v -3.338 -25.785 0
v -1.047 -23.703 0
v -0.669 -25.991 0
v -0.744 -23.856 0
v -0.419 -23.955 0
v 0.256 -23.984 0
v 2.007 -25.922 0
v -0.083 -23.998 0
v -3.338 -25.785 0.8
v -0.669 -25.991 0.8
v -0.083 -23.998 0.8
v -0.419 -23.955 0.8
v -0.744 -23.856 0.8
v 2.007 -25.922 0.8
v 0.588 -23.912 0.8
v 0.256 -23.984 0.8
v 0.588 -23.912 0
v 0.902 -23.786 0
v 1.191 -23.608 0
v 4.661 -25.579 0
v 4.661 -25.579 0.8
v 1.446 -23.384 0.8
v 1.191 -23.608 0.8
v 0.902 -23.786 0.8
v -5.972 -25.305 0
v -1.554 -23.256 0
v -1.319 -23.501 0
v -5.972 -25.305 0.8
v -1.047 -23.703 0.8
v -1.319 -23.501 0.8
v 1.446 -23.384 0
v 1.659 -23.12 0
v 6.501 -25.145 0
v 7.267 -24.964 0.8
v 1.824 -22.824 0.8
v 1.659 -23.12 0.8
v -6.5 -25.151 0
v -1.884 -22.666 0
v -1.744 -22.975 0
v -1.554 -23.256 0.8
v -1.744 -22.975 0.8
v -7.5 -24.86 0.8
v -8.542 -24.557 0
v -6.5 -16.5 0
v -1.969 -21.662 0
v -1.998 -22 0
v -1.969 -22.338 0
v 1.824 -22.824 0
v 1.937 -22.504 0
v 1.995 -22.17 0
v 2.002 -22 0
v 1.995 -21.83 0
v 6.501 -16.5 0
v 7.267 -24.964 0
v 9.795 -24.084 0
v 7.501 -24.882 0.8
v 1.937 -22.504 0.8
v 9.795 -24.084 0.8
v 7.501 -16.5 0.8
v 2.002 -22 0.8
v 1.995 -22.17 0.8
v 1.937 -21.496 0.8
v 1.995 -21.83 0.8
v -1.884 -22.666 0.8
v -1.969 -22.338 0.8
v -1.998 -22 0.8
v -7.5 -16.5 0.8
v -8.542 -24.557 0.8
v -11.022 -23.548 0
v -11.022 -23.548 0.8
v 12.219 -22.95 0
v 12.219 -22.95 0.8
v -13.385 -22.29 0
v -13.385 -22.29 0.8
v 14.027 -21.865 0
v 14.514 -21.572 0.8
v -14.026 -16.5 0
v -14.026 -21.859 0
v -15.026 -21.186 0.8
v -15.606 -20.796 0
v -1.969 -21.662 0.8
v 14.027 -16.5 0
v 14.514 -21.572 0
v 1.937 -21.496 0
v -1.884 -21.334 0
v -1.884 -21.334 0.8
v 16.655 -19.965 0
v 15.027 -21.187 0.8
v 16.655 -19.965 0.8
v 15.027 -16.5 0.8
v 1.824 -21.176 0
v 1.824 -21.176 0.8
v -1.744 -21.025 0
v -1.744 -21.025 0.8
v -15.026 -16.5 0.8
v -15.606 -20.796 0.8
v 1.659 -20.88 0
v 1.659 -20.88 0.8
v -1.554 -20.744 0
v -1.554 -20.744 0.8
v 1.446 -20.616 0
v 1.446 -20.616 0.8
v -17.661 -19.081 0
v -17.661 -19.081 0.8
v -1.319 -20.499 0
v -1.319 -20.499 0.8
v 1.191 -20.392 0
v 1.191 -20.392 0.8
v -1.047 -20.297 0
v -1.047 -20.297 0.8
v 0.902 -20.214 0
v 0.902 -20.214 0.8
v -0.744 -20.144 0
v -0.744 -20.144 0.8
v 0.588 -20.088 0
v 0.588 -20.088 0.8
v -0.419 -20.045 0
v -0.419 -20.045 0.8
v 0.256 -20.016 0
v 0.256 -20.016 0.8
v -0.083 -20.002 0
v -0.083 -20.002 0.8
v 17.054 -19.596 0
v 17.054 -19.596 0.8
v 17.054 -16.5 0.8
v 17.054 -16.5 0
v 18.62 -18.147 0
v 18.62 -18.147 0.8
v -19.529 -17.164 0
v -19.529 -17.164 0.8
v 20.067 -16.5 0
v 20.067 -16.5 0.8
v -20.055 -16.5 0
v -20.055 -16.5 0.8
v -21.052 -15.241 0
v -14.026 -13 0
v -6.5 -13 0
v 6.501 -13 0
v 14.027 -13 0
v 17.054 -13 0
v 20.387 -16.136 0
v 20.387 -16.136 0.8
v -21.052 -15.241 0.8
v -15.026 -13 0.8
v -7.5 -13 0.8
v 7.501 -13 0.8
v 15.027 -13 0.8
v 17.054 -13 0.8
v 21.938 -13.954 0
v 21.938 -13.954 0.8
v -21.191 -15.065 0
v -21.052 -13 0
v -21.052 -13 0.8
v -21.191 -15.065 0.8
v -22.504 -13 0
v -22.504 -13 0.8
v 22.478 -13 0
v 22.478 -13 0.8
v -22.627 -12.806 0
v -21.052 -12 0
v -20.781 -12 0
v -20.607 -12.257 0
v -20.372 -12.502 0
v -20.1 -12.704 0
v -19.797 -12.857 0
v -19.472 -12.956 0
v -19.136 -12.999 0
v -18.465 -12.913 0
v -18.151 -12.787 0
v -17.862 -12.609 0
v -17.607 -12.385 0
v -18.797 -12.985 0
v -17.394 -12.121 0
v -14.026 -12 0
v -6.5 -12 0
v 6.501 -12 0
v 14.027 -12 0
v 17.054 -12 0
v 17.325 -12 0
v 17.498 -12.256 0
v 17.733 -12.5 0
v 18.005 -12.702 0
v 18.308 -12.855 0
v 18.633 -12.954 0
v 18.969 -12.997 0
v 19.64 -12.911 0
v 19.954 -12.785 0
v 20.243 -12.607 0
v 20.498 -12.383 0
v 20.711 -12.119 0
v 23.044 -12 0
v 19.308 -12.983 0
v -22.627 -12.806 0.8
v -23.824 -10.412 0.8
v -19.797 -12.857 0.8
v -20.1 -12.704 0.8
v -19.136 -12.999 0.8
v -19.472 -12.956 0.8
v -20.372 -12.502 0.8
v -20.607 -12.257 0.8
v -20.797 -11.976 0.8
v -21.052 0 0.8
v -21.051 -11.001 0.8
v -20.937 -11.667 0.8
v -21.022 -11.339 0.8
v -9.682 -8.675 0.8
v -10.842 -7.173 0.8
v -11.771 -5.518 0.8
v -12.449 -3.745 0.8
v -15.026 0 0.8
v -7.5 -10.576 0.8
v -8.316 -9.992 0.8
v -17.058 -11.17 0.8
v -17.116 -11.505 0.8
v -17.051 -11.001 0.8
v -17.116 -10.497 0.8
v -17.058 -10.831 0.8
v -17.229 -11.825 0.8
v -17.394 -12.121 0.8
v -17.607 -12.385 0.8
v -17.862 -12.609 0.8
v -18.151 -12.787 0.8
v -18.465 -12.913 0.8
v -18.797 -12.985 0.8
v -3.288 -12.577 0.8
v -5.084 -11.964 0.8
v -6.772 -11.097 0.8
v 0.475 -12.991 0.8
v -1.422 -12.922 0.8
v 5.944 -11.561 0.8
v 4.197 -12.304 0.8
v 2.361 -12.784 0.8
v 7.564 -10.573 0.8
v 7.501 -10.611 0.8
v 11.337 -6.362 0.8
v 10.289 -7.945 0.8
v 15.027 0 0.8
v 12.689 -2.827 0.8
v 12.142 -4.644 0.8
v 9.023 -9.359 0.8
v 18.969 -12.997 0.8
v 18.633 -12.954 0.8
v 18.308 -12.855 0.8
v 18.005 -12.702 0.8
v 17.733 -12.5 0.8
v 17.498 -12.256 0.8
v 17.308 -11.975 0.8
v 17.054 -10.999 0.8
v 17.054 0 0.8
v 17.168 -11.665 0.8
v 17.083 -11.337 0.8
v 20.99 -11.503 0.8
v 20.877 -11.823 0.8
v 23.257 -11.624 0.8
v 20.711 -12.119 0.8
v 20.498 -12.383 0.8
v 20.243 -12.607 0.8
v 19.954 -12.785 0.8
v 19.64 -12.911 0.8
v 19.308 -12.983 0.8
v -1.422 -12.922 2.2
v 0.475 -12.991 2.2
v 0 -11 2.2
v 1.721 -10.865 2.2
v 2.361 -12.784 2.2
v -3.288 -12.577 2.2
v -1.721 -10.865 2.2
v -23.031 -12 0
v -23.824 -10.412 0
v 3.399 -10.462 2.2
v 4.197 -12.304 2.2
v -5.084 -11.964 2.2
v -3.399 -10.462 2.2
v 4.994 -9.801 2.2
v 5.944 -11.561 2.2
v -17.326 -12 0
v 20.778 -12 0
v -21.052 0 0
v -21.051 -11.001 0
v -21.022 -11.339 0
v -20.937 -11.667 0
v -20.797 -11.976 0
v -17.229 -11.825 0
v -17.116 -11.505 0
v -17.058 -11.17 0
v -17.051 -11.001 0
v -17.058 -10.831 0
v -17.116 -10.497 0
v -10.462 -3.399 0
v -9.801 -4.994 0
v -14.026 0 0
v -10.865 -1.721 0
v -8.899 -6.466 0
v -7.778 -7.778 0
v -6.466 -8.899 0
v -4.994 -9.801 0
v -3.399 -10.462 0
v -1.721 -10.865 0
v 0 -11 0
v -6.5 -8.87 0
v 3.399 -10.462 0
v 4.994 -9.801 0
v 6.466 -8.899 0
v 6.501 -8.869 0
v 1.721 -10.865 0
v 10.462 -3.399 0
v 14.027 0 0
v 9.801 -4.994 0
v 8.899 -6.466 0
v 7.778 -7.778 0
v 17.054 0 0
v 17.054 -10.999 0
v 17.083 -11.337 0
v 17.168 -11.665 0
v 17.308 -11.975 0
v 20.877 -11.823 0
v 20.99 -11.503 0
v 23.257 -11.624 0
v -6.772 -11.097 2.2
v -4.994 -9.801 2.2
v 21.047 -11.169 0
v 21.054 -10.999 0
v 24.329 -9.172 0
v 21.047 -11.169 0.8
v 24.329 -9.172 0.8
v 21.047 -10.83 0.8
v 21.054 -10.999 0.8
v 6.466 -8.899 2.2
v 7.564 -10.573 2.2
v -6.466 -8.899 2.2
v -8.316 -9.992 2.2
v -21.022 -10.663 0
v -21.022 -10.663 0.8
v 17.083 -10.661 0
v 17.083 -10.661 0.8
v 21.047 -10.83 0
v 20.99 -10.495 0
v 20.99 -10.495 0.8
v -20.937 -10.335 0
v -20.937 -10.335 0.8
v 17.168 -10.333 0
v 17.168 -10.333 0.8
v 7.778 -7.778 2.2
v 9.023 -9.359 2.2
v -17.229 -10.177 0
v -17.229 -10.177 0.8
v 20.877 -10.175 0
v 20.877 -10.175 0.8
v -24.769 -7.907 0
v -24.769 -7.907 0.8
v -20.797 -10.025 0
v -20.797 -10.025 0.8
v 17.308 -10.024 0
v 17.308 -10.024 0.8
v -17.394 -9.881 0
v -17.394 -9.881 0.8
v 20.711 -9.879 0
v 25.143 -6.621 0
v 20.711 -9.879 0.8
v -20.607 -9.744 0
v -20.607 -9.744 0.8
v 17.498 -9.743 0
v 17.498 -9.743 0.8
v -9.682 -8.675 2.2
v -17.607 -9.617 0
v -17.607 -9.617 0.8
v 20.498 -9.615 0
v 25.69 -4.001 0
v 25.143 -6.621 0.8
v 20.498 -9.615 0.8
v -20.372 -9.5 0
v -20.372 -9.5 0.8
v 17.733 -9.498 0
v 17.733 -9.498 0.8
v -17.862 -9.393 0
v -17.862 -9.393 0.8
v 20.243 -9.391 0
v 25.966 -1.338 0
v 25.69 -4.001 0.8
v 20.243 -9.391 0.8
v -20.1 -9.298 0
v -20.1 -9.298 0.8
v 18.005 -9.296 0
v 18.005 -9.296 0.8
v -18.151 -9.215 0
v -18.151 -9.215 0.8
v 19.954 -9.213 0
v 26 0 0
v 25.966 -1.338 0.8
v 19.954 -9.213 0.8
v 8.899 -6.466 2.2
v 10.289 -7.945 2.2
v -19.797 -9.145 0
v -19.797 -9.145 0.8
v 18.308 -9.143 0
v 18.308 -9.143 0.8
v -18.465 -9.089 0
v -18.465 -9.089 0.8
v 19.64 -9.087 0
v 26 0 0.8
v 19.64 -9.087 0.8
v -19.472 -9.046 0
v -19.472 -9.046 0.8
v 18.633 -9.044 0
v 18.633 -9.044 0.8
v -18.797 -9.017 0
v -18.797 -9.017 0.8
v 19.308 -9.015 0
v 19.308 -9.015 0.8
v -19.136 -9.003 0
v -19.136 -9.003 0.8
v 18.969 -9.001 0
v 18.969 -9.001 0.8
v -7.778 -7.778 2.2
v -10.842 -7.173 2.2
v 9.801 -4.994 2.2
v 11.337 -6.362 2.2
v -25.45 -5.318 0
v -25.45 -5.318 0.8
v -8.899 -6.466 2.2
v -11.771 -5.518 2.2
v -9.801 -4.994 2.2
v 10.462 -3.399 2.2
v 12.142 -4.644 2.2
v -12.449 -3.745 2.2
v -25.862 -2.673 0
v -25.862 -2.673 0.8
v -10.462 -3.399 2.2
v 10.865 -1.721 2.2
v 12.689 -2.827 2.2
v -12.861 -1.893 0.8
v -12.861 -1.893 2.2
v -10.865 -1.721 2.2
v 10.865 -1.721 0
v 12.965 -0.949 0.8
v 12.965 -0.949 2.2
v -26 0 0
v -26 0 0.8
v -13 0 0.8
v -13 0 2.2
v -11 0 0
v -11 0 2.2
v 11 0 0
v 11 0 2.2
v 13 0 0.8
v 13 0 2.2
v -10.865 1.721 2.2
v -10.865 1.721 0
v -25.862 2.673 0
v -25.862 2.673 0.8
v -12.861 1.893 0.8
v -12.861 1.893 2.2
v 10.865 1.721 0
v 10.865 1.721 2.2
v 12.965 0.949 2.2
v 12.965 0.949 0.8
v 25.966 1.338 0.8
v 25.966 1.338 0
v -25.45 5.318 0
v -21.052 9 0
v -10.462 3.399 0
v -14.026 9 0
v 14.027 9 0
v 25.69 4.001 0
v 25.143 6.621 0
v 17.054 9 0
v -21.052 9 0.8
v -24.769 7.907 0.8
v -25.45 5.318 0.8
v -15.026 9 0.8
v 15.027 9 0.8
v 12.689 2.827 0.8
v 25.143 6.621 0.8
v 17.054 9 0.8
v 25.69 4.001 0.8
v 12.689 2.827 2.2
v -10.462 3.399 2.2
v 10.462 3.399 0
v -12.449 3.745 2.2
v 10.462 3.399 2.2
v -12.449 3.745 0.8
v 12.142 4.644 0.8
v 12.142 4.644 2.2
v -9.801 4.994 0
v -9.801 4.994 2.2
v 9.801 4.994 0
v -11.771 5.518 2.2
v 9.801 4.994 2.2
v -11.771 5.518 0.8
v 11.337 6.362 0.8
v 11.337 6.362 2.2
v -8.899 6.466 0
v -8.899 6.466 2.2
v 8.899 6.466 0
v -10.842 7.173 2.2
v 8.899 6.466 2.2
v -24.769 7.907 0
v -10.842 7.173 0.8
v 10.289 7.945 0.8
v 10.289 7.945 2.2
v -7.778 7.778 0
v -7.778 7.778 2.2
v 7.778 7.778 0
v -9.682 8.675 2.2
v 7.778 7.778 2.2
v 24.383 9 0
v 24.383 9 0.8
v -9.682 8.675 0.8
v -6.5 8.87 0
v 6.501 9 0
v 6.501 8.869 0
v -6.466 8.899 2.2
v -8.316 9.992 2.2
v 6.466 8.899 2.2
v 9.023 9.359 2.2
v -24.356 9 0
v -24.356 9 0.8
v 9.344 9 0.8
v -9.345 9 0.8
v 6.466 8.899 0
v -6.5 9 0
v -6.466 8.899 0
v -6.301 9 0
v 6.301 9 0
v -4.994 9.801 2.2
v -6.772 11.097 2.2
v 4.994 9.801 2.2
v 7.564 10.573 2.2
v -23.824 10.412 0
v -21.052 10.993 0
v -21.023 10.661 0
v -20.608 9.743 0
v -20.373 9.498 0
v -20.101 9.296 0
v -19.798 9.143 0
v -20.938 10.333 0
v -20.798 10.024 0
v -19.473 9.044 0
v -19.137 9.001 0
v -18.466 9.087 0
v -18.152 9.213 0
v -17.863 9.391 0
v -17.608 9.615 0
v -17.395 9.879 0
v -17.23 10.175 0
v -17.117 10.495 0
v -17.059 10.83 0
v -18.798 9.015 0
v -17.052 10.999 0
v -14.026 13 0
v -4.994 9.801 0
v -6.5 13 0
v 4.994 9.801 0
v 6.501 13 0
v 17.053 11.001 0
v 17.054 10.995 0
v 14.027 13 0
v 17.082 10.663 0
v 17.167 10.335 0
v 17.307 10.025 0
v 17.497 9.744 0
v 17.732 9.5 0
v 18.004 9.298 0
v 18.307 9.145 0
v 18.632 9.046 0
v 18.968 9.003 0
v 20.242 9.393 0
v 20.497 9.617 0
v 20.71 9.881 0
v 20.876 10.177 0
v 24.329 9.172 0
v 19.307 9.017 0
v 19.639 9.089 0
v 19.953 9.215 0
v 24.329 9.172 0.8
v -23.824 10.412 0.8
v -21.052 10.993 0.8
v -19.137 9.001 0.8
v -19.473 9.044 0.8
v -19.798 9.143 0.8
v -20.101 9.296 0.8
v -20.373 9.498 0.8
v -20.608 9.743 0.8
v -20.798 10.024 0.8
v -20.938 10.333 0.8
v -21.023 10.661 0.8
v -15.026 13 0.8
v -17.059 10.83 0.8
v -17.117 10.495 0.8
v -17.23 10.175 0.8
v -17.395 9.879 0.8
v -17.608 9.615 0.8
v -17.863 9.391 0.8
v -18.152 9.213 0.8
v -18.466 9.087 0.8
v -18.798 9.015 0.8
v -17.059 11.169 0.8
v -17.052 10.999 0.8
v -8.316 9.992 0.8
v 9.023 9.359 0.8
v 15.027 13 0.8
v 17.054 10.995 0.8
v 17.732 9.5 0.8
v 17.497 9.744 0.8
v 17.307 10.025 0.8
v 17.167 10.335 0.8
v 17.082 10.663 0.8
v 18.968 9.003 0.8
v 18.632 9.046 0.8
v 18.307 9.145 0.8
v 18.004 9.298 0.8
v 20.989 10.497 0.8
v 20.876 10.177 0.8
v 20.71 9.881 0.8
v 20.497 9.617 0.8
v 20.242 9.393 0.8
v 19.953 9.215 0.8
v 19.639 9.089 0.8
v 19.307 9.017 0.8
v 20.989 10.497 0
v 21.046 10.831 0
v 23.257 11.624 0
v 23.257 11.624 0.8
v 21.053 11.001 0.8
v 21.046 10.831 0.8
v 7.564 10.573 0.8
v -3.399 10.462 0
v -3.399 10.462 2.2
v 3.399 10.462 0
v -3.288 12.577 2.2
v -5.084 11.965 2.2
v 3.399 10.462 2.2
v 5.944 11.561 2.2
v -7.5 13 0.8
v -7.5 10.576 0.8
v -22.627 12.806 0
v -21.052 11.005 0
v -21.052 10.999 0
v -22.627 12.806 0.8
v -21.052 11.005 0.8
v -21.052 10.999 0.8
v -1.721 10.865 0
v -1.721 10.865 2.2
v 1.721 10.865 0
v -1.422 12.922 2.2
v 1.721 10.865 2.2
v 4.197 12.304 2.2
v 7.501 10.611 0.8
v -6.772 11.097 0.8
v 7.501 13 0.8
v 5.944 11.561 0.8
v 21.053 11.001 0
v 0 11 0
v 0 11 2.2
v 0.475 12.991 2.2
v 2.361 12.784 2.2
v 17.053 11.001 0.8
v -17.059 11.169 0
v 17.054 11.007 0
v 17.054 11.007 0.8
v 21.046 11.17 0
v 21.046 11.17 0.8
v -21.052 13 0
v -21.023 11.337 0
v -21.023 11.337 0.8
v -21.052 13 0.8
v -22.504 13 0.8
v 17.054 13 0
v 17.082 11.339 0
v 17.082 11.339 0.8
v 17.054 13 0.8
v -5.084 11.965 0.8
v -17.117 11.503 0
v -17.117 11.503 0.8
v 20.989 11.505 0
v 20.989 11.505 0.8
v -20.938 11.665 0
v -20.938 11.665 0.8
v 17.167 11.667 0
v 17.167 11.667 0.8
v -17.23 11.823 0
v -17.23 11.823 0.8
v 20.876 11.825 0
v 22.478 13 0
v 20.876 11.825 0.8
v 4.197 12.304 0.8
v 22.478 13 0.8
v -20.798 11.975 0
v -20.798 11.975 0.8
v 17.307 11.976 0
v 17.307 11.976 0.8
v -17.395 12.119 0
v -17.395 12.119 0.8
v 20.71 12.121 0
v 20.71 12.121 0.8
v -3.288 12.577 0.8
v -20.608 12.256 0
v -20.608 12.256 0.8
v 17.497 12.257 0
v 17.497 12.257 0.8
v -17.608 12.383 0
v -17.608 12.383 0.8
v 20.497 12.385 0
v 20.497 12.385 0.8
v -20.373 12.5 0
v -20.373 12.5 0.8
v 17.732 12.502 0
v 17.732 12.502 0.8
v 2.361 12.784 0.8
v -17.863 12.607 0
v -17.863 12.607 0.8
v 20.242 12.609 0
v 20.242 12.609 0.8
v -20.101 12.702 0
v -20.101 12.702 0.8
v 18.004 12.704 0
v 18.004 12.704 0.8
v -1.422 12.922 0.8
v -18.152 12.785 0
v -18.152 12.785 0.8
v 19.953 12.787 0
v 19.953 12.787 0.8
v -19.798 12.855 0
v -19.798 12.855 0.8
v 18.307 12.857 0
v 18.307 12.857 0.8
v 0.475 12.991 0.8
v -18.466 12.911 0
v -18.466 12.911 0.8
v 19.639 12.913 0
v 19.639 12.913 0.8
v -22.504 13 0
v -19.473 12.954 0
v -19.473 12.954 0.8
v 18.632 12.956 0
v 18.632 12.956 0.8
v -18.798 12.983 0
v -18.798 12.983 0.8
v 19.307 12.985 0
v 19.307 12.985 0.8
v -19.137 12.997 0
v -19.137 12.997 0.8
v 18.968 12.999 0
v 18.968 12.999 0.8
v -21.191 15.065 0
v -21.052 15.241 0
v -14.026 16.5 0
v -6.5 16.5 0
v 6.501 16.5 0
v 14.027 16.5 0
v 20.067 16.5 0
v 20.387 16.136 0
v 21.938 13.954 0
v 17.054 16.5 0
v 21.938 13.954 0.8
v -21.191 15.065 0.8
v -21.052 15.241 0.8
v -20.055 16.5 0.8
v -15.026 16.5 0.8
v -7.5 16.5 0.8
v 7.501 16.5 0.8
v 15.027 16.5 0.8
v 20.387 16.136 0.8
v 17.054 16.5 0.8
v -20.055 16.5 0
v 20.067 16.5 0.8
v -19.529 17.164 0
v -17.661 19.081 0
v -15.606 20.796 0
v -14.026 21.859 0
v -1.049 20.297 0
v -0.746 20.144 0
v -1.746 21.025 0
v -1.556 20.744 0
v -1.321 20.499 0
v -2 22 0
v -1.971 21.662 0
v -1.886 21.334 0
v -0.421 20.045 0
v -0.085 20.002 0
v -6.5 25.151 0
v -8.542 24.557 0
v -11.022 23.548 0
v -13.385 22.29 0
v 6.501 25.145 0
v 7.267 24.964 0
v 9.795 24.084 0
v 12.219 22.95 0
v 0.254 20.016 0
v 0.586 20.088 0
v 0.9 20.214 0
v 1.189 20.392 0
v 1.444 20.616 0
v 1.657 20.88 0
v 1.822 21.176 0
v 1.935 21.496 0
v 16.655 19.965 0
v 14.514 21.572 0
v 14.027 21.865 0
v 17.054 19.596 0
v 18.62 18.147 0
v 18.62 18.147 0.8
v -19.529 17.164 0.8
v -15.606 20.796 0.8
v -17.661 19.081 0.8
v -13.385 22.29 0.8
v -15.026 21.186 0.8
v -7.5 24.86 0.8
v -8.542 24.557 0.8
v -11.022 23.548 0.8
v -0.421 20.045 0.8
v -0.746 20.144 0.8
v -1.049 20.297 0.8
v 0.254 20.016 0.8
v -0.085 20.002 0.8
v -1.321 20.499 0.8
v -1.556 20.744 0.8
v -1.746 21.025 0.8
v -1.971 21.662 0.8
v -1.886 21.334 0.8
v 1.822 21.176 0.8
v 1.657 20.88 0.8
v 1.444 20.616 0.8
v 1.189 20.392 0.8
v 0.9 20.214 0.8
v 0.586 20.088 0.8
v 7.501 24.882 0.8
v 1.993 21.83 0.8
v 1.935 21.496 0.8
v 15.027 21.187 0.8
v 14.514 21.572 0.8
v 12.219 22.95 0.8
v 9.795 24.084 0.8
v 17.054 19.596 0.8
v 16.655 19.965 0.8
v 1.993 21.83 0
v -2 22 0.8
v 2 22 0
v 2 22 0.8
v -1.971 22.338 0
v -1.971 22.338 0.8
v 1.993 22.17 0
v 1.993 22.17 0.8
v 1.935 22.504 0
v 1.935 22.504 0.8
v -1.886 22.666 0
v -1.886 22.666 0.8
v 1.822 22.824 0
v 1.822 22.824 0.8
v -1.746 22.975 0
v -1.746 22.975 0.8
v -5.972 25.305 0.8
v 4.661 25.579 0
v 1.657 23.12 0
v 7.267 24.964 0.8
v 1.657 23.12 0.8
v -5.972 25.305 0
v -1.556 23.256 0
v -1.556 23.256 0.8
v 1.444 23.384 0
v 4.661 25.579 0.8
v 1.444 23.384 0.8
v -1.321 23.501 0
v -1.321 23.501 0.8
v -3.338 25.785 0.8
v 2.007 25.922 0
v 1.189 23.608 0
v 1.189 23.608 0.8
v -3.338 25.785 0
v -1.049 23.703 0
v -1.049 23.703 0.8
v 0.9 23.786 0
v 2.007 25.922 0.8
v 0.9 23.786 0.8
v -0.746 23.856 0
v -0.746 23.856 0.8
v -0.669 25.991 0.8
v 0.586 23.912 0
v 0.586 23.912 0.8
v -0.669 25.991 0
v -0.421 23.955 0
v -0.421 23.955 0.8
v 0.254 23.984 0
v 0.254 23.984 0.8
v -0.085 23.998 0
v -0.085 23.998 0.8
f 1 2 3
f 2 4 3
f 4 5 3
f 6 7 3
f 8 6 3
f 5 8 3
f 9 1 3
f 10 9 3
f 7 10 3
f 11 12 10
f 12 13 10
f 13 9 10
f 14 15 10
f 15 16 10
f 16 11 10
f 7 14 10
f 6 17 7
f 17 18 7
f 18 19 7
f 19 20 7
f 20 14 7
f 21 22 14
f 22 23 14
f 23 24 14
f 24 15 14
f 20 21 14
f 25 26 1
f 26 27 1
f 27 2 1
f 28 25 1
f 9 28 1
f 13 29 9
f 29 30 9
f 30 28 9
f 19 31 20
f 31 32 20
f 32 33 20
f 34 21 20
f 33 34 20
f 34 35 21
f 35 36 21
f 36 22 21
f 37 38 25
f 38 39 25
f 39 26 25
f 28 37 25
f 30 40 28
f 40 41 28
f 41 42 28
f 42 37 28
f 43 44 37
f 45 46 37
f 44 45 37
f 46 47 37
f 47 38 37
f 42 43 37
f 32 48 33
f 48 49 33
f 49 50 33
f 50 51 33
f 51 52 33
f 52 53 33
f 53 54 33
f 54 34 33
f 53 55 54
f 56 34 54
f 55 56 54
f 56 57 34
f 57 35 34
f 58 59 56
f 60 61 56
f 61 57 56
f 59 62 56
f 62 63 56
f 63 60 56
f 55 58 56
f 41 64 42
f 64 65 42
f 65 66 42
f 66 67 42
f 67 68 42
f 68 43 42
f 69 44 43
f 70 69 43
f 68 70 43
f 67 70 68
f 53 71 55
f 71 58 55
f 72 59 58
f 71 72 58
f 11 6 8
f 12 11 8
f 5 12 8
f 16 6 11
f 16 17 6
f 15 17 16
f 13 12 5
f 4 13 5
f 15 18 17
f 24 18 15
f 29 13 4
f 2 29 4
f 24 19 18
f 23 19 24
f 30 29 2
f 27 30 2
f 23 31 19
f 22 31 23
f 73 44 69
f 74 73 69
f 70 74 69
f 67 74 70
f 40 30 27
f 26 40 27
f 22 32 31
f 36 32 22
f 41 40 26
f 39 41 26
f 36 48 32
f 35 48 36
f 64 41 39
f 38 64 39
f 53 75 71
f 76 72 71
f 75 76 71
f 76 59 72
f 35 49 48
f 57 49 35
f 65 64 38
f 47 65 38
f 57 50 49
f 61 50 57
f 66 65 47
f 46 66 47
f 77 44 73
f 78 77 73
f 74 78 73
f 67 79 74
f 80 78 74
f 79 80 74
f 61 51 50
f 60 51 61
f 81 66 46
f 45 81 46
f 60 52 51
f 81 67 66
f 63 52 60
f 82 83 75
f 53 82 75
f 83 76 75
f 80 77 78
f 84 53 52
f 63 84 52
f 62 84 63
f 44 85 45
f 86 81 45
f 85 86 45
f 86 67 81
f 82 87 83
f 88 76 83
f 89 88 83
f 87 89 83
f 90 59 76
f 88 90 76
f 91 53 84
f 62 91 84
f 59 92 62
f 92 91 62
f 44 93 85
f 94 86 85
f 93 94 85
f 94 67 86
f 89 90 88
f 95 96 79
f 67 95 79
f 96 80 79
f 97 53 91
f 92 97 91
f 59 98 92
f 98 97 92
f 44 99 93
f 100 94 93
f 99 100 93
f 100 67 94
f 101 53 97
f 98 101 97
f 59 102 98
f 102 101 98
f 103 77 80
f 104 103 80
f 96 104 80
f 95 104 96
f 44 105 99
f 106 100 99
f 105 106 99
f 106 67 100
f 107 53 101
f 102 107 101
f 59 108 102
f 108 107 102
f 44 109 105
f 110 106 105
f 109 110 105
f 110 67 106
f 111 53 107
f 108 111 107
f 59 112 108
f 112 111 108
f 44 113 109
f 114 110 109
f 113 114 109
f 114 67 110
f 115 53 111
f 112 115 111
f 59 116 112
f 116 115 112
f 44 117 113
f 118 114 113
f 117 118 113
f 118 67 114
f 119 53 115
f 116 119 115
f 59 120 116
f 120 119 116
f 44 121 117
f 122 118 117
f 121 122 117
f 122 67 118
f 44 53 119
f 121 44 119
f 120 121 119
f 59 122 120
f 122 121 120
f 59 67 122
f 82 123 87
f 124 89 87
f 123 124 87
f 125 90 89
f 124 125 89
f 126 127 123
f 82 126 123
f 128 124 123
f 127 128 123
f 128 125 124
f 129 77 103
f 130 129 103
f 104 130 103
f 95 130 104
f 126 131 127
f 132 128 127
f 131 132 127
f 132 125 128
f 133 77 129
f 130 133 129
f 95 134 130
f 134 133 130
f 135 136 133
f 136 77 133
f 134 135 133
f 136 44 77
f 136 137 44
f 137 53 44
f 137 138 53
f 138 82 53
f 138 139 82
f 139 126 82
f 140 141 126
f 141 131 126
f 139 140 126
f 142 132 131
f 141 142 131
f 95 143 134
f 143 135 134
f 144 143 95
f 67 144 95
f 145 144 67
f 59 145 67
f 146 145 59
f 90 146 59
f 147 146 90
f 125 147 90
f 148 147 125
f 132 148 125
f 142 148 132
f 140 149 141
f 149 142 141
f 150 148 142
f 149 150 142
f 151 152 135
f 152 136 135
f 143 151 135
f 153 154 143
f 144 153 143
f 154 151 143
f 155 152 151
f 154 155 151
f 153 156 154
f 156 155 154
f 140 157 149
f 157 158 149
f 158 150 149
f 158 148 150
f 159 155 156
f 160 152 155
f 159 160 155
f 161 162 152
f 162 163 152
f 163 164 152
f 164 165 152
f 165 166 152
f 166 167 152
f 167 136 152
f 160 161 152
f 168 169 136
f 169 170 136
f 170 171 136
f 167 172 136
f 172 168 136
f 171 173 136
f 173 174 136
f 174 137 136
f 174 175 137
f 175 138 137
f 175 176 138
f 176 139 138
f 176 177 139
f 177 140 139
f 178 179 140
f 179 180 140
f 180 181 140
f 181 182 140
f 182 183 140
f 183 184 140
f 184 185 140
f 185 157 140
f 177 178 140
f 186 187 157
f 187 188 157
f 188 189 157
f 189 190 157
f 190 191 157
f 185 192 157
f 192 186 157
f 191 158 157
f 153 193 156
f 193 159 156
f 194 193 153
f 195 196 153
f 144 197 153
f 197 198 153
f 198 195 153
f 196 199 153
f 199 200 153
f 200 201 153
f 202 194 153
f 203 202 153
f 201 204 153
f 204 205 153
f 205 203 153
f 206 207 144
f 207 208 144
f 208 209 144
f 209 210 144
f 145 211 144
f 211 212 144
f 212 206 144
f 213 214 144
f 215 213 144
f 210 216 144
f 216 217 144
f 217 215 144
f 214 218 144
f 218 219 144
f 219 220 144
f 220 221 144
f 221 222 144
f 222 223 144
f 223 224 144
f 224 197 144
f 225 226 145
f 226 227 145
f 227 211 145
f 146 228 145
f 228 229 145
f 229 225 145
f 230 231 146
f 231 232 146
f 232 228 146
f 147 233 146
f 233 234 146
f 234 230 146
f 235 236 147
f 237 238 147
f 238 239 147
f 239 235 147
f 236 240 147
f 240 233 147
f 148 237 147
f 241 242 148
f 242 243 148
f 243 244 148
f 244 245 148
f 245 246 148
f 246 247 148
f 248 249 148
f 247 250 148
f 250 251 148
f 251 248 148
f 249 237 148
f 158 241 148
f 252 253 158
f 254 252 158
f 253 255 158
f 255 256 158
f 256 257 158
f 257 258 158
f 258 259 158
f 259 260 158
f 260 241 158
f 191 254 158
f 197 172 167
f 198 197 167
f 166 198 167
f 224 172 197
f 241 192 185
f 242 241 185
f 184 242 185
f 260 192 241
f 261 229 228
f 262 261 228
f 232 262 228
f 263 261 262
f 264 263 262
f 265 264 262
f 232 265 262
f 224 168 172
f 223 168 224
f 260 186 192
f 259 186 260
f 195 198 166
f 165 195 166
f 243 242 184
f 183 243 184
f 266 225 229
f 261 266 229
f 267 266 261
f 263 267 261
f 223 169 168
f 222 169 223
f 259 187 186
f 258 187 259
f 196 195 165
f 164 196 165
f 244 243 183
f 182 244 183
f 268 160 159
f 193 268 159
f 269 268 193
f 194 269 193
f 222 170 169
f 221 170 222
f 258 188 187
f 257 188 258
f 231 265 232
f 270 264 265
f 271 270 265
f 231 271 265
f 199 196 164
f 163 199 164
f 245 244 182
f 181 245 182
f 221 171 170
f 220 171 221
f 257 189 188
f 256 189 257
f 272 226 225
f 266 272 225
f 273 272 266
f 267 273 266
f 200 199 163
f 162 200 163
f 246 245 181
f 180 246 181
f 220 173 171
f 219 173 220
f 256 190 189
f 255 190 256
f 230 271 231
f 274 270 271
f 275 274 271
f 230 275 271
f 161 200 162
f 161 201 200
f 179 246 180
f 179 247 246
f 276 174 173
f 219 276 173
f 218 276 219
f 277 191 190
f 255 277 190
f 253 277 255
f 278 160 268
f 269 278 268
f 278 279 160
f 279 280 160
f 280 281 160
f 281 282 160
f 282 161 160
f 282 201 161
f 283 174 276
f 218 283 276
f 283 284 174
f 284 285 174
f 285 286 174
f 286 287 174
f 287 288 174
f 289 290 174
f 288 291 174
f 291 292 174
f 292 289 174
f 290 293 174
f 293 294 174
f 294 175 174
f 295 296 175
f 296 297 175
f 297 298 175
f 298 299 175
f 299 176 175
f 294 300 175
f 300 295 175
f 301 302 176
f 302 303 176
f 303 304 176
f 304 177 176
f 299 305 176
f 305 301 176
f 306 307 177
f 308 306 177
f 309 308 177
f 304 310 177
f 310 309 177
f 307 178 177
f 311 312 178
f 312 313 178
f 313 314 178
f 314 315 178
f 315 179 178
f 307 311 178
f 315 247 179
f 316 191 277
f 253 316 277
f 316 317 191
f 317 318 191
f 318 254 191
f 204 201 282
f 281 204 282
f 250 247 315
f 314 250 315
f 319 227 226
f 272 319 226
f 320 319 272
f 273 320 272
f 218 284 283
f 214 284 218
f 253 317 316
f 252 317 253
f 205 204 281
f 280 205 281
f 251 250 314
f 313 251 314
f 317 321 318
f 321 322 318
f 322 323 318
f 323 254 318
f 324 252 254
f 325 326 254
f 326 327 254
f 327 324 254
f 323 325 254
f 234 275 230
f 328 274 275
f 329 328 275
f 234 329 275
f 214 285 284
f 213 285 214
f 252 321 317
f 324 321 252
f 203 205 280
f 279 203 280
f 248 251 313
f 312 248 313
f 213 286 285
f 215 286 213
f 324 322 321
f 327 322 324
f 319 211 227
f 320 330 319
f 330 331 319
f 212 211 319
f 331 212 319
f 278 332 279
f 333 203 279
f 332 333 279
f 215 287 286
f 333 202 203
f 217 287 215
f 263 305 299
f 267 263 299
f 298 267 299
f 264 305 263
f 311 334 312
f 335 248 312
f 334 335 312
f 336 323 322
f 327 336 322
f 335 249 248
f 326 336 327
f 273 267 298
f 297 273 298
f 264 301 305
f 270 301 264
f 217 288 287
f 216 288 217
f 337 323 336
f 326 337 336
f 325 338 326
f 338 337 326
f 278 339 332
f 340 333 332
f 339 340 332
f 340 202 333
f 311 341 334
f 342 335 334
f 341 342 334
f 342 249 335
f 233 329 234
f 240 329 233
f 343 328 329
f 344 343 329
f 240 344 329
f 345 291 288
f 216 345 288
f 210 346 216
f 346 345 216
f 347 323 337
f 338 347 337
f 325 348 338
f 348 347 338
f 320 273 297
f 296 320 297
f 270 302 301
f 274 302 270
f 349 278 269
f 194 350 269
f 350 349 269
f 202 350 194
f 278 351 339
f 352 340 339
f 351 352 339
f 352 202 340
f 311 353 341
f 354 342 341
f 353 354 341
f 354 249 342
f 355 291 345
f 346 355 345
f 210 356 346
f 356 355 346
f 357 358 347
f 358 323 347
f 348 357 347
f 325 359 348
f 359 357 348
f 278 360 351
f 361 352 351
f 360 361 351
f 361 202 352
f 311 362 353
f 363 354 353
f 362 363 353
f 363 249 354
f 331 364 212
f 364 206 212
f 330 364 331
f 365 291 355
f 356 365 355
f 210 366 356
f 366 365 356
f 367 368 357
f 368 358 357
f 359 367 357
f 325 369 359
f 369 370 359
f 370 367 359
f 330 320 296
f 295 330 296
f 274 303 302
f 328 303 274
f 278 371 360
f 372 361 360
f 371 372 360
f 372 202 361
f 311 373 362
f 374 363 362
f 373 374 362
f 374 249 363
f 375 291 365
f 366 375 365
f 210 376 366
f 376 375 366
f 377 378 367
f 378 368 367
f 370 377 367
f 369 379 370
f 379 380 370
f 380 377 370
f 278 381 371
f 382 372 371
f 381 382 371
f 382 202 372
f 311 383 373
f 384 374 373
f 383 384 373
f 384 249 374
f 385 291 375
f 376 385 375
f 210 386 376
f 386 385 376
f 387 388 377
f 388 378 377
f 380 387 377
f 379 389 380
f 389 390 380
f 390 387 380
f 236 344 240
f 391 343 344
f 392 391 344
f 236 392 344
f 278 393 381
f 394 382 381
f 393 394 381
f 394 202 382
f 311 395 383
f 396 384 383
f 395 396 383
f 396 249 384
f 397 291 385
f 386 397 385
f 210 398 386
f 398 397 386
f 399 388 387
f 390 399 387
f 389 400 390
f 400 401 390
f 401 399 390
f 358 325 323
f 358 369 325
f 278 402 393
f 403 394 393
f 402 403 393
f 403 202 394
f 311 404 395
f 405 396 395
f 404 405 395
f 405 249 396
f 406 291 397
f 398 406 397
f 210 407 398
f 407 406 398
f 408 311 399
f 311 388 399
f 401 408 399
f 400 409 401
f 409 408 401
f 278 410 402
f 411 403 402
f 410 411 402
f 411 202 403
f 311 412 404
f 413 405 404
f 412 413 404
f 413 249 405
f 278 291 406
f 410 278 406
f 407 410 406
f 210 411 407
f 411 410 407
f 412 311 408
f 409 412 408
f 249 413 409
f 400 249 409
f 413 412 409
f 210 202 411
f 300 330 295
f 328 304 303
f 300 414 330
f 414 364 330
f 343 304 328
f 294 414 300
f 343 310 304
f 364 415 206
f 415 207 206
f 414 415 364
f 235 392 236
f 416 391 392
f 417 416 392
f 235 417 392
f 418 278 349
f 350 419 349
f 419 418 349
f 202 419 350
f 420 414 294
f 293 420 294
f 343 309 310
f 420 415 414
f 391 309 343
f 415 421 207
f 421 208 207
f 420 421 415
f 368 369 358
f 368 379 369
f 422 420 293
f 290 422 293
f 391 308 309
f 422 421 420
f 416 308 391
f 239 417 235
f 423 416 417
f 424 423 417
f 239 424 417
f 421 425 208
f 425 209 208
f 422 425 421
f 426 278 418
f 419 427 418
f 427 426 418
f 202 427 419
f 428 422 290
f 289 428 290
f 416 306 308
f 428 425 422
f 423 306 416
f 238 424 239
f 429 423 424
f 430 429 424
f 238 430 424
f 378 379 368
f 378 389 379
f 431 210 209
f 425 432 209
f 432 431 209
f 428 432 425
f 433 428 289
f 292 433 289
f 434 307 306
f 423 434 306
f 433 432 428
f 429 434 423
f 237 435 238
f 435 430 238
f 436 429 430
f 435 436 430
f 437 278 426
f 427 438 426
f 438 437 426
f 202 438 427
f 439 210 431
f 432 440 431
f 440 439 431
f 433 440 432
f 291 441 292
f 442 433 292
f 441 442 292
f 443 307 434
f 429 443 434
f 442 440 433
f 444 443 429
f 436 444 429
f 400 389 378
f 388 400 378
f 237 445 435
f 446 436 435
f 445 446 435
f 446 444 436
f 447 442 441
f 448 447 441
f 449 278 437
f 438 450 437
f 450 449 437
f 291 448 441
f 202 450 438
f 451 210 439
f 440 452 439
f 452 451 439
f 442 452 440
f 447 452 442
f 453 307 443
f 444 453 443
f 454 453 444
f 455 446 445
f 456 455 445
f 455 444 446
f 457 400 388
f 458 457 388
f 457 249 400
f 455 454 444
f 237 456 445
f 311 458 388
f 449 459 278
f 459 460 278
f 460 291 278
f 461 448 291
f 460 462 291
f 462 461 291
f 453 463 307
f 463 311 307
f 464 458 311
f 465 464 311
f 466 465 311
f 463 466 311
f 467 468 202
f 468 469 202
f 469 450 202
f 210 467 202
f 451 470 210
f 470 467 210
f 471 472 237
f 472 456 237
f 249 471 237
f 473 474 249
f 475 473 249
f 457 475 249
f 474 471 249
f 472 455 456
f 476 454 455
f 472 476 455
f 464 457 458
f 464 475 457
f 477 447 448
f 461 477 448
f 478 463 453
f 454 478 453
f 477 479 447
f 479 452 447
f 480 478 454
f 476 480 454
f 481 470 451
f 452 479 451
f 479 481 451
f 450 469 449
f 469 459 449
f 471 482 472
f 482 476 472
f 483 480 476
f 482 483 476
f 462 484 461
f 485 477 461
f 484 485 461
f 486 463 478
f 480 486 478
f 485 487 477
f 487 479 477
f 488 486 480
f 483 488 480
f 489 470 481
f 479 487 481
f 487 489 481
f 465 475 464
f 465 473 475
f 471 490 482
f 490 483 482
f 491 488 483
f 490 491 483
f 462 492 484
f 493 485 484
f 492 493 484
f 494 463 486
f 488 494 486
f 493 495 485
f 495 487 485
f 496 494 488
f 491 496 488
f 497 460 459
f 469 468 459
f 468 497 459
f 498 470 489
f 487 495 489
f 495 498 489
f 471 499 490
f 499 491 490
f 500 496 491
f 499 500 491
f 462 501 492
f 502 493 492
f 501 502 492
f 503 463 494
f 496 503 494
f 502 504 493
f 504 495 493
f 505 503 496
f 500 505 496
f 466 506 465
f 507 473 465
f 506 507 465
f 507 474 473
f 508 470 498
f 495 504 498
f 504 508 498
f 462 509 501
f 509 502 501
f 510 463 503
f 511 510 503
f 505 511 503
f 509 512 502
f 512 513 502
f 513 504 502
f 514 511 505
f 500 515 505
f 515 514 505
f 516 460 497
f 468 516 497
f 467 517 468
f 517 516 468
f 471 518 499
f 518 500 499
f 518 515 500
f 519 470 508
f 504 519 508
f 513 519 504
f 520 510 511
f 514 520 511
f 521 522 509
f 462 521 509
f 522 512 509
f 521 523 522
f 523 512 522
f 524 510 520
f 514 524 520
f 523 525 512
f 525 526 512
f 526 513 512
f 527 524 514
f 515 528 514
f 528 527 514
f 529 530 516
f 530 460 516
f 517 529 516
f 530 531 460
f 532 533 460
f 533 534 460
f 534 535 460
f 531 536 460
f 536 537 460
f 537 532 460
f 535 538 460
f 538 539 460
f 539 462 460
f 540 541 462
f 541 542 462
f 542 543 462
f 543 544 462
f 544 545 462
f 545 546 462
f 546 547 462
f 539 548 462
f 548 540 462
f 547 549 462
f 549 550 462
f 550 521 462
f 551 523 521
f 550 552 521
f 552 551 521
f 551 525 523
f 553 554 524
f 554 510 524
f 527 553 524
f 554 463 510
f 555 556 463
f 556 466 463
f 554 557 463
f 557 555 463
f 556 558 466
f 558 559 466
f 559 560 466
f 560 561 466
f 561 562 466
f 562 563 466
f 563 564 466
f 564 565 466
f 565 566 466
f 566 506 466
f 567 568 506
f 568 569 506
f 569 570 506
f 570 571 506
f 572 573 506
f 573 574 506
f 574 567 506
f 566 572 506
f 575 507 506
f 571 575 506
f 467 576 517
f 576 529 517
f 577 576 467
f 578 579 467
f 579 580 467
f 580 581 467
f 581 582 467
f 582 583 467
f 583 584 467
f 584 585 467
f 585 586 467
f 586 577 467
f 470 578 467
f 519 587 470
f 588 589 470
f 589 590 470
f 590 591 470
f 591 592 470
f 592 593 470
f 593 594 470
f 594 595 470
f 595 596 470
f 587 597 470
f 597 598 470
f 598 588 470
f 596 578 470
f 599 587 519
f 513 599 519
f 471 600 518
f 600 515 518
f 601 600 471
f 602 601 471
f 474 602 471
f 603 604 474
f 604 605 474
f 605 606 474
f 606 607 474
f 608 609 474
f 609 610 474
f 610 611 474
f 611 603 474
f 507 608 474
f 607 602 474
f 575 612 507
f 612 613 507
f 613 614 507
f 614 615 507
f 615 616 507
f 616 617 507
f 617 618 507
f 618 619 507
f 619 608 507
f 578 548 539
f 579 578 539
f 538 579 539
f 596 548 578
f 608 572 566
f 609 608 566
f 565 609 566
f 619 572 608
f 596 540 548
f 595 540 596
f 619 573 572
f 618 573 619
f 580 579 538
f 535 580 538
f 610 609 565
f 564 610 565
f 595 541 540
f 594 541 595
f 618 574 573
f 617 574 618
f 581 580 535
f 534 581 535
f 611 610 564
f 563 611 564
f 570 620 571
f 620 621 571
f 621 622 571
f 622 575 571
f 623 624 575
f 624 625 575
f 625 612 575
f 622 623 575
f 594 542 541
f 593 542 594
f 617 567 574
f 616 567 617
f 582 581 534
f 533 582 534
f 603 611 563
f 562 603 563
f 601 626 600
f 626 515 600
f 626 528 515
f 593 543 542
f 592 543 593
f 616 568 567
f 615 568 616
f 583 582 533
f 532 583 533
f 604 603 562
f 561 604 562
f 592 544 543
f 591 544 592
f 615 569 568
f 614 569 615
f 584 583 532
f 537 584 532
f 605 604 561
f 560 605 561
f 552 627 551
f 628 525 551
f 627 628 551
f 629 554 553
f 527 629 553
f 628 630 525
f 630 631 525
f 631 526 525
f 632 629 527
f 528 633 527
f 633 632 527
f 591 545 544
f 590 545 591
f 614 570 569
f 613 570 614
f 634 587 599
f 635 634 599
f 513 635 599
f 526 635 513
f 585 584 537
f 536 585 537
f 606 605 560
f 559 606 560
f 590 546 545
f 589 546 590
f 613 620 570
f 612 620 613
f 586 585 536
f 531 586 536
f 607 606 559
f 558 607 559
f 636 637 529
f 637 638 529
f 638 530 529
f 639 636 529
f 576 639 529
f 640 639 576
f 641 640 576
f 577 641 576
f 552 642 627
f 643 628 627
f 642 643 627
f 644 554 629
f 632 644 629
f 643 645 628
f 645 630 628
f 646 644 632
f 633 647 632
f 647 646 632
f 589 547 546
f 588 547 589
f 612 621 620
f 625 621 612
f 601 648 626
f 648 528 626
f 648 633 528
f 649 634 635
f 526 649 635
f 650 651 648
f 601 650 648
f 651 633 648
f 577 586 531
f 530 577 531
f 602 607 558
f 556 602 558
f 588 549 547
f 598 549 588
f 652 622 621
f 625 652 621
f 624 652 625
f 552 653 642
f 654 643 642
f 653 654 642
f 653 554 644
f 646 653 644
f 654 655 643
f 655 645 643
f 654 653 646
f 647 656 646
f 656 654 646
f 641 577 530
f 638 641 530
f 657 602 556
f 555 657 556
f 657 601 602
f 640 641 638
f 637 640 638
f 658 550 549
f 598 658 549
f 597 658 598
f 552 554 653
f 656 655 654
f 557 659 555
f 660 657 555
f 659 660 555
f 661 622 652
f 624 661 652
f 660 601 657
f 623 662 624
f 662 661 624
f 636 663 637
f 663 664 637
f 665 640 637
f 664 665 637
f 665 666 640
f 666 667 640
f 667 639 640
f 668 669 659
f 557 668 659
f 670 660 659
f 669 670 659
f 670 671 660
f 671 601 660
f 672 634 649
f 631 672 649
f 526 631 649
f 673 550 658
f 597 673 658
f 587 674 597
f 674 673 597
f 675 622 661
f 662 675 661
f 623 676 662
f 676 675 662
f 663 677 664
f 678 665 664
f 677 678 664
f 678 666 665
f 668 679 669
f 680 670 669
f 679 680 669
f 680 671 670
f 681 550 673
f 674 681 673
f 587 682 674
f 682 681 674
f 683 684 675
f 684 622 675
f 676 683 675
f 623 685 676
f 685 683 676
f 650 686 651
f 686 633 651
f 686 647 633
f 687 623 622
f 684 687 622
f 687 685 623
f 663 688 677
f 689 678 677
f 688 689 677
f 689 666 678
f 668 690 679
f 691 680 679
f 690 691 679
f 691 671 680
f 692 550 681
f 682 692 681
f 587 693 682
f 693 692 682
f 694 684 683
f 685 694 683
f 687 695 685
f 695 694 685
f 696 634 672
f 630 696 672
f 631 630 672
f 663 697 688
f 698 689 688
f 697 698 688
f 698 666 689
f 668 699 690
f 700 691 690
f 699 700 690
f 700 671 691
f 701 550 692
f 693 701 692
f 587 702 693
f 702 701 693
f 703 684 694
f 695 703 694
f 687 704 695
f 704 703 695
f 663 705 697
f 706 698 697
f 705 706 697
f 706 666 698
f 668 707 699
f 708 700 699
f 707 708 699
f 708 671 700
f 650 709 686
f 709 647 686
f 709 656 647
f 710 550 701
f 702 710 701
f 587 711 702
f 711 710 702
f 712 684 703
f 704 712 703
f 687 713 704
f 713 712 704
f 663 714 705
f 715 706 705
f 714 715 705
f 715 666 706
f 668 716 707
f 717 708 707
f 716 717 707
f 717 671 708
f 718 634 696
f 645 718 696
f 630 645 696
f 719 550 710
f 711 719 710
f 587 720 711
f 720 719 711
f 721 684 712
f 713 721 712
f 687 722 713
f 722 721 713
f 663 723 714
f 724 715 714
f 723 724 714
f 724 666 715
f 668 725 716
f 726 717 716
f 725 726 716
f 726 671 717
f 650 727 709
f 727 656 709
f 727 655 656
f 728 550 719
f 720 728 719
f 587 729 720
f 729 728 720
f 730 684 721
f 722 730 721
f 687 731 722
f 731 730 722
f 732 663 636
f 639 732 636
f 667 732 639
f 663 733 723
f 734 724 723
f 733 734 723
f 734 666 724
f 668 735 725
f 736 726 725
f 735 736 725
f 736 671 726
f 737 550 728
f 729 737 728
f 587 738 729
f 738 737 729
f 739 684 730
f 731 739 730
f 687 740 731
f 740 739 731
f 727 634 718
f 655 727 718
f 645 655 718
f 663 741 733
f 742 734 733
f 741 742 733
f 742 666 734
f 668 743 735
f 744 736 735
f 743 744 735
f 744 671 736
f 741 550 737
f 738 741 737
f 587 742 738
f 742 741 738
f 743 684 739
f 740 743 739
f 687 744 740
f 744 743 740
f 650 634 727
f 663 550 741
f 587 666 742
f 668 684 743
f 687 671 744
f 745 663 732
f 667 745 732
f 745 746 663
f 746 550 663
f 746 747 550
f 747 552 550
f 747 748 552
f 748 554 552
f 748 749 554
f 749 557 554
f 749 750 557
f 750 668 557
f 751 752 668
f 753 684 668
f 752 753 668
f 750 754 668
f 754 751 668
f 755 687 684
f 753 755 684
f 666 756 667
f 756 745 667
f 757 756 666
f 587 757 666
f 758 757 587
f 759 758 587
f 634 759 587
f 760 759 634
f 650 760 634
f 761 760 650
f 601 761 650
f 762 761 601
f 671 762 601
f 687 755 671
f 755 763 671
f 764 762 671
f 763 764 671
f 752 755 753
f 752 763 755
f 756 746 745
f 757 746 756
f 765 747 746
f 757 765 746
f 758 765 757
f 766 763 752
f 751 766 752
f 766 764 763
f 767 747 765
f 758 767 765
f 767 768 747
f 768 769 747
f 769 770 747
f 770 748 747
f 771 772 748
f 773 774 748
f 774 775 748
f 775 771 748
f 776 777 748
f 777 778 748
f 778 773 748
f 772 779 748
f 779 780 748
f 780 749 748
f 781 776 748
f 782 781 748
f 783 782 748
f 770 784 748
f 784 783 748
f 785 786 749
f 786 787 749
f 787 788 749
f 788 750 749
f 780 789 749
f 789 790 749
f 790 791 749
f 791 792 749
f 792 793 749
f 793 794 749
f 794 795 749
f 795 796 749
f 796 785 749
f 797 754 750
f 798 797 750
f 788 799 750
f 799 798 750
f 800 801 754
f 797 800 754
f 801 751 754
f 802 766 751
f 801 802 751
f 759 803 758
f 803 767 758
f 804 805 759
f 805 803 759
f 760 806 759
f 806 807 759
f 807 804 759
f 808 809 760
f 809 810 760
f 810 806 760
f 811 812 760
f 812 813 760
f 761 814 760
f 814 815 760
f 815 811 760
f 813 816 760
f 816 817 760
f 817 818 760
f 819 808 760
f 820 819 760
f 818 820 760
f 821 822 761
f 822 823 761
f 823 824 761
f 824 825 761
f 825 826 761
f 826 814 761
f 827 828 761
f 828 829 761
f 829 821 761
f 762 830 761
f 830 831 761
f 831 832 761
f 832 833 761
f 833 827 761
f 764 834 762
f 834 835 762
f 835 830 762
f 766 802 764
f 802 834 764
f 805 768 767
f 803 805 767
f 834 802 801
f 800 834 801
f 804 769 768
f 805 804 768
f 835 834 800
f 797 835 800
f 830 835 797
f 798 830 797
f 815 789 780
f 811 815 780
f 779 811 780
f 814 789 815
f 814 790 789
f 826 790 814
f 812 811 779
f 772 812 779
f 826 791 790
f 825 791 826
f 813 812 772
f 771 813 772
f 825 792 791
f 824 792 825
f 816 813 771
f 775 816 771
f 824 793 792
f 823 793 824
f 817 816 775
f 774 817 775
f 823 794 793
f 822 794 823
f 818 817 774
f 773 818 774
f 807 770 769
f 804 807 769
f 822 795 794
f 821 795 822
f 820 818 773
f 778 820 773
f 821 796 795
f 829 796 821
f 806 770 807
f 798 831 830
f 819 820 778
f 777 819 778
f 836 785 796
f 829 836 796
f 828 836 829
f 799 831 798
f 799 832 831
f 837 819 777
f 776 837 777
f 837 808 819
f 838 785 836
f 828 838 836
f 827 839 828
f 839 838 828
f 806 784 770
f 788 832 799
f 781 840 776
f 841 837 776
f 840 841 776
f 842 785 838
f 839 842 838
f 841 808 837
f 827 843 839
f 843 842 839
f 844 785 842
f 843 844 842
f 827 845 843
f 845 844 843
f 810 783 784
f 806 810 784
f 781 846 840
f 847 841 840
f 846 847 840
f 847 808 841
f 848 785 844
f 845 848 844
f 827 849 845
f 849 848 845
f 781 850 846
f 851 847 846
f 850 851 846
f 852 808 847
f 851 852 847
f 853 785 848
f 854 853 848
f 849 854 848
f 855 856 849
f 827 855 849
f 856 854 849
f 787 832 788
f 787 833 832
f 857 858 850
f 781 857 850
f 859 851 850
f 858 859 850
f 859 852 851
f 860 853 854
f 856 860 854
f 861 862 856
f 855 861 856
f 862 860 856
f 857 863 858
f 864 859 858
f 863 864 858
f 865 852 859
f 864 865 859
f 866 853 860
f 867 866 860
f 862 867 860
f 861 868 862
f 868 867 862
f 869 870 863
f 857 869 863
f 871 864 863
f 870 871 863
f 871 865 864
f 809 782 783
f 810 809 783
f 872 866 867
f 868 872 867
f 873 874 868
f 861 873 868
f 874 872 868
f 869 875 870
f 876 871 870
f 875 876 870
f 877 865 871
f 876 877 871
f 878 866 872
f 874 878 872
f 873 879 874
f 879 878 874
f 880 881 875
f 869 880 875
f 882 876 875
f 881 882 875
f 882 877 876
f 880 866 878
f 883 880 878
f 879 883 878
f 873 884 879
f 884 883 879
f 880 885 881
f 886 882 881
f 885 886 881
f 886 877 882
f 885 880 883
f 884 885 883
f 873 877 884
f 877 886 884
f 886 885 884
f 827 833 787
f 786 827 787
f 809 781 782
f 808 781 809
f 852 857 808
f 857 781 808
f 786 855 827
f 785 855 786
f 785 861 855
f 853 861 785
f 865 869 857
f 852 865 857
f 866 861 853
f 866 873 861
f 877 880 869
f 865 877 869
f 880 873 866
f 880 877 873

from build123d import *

# Parameters (mm, degrees)
ESQUISSE1_R        = 26
ESQUISSE1_R_2      = 2
ESQUISSE1_R_3      = 11
BOSS_EXTRU_1_DEPTH = 0.8
ESQUISSE2_R        = 13
ESQUISSE2_R_2      = 11
BOSS_EXTRU_2_DEPTH = 1.4


with BuildPart() as part:
    # Esquisse1 → Boss.-Extru.1 (new body)
    with BuildSketch(Plane.XY):
        Circle(ESQUISSE1_R)
        with Locations((0, 22)):
            Circle(ESQUISSE1_R_2, mode=Mode.SUBTRACT)
        with Locations((19.053058883, 11.000866025)):
            Circle(ESQUISSE1_R_2, mode=Mode.SUBTRACT)
        with Locations((19.054058883, -10.999133975)):
            Circle(ESQUISSE1_R_2, mode=Mode.SUBTRACT)
        with Locations((0.002, -22)):
            Circle(ESQUISSE1_R_2, mode=Mode.SUBTRACT)
        with Locations((-19.051058883, -11.000866025)):
            Circle(ESQUISSE1_R_2, mode=Mode.SUBTRACT)
        with Locations((-19.052058883, 10.999133975)):
            Circle(ESQUISSE1_R_2, mode=Mode.SUBTRACT)
        Circle(ESQUISSE1_R_3, mode=Mode.SUBTRACT)
    extrude(amount=BOSS_EXTRU_1_DEPTH)

    # Esquisse2 → Boss.-Extru.2 (add)
    with BuildSketch(Plane.XY.offset(0.8)):
        Circle(ESQUISSE2_R)
        Circle(ESQUISSE2_R_2, mode=Mode.SUBTRACT)
    extrude(amount=BOSS_EXTRU_2_DEPTH)


solid = part.part
